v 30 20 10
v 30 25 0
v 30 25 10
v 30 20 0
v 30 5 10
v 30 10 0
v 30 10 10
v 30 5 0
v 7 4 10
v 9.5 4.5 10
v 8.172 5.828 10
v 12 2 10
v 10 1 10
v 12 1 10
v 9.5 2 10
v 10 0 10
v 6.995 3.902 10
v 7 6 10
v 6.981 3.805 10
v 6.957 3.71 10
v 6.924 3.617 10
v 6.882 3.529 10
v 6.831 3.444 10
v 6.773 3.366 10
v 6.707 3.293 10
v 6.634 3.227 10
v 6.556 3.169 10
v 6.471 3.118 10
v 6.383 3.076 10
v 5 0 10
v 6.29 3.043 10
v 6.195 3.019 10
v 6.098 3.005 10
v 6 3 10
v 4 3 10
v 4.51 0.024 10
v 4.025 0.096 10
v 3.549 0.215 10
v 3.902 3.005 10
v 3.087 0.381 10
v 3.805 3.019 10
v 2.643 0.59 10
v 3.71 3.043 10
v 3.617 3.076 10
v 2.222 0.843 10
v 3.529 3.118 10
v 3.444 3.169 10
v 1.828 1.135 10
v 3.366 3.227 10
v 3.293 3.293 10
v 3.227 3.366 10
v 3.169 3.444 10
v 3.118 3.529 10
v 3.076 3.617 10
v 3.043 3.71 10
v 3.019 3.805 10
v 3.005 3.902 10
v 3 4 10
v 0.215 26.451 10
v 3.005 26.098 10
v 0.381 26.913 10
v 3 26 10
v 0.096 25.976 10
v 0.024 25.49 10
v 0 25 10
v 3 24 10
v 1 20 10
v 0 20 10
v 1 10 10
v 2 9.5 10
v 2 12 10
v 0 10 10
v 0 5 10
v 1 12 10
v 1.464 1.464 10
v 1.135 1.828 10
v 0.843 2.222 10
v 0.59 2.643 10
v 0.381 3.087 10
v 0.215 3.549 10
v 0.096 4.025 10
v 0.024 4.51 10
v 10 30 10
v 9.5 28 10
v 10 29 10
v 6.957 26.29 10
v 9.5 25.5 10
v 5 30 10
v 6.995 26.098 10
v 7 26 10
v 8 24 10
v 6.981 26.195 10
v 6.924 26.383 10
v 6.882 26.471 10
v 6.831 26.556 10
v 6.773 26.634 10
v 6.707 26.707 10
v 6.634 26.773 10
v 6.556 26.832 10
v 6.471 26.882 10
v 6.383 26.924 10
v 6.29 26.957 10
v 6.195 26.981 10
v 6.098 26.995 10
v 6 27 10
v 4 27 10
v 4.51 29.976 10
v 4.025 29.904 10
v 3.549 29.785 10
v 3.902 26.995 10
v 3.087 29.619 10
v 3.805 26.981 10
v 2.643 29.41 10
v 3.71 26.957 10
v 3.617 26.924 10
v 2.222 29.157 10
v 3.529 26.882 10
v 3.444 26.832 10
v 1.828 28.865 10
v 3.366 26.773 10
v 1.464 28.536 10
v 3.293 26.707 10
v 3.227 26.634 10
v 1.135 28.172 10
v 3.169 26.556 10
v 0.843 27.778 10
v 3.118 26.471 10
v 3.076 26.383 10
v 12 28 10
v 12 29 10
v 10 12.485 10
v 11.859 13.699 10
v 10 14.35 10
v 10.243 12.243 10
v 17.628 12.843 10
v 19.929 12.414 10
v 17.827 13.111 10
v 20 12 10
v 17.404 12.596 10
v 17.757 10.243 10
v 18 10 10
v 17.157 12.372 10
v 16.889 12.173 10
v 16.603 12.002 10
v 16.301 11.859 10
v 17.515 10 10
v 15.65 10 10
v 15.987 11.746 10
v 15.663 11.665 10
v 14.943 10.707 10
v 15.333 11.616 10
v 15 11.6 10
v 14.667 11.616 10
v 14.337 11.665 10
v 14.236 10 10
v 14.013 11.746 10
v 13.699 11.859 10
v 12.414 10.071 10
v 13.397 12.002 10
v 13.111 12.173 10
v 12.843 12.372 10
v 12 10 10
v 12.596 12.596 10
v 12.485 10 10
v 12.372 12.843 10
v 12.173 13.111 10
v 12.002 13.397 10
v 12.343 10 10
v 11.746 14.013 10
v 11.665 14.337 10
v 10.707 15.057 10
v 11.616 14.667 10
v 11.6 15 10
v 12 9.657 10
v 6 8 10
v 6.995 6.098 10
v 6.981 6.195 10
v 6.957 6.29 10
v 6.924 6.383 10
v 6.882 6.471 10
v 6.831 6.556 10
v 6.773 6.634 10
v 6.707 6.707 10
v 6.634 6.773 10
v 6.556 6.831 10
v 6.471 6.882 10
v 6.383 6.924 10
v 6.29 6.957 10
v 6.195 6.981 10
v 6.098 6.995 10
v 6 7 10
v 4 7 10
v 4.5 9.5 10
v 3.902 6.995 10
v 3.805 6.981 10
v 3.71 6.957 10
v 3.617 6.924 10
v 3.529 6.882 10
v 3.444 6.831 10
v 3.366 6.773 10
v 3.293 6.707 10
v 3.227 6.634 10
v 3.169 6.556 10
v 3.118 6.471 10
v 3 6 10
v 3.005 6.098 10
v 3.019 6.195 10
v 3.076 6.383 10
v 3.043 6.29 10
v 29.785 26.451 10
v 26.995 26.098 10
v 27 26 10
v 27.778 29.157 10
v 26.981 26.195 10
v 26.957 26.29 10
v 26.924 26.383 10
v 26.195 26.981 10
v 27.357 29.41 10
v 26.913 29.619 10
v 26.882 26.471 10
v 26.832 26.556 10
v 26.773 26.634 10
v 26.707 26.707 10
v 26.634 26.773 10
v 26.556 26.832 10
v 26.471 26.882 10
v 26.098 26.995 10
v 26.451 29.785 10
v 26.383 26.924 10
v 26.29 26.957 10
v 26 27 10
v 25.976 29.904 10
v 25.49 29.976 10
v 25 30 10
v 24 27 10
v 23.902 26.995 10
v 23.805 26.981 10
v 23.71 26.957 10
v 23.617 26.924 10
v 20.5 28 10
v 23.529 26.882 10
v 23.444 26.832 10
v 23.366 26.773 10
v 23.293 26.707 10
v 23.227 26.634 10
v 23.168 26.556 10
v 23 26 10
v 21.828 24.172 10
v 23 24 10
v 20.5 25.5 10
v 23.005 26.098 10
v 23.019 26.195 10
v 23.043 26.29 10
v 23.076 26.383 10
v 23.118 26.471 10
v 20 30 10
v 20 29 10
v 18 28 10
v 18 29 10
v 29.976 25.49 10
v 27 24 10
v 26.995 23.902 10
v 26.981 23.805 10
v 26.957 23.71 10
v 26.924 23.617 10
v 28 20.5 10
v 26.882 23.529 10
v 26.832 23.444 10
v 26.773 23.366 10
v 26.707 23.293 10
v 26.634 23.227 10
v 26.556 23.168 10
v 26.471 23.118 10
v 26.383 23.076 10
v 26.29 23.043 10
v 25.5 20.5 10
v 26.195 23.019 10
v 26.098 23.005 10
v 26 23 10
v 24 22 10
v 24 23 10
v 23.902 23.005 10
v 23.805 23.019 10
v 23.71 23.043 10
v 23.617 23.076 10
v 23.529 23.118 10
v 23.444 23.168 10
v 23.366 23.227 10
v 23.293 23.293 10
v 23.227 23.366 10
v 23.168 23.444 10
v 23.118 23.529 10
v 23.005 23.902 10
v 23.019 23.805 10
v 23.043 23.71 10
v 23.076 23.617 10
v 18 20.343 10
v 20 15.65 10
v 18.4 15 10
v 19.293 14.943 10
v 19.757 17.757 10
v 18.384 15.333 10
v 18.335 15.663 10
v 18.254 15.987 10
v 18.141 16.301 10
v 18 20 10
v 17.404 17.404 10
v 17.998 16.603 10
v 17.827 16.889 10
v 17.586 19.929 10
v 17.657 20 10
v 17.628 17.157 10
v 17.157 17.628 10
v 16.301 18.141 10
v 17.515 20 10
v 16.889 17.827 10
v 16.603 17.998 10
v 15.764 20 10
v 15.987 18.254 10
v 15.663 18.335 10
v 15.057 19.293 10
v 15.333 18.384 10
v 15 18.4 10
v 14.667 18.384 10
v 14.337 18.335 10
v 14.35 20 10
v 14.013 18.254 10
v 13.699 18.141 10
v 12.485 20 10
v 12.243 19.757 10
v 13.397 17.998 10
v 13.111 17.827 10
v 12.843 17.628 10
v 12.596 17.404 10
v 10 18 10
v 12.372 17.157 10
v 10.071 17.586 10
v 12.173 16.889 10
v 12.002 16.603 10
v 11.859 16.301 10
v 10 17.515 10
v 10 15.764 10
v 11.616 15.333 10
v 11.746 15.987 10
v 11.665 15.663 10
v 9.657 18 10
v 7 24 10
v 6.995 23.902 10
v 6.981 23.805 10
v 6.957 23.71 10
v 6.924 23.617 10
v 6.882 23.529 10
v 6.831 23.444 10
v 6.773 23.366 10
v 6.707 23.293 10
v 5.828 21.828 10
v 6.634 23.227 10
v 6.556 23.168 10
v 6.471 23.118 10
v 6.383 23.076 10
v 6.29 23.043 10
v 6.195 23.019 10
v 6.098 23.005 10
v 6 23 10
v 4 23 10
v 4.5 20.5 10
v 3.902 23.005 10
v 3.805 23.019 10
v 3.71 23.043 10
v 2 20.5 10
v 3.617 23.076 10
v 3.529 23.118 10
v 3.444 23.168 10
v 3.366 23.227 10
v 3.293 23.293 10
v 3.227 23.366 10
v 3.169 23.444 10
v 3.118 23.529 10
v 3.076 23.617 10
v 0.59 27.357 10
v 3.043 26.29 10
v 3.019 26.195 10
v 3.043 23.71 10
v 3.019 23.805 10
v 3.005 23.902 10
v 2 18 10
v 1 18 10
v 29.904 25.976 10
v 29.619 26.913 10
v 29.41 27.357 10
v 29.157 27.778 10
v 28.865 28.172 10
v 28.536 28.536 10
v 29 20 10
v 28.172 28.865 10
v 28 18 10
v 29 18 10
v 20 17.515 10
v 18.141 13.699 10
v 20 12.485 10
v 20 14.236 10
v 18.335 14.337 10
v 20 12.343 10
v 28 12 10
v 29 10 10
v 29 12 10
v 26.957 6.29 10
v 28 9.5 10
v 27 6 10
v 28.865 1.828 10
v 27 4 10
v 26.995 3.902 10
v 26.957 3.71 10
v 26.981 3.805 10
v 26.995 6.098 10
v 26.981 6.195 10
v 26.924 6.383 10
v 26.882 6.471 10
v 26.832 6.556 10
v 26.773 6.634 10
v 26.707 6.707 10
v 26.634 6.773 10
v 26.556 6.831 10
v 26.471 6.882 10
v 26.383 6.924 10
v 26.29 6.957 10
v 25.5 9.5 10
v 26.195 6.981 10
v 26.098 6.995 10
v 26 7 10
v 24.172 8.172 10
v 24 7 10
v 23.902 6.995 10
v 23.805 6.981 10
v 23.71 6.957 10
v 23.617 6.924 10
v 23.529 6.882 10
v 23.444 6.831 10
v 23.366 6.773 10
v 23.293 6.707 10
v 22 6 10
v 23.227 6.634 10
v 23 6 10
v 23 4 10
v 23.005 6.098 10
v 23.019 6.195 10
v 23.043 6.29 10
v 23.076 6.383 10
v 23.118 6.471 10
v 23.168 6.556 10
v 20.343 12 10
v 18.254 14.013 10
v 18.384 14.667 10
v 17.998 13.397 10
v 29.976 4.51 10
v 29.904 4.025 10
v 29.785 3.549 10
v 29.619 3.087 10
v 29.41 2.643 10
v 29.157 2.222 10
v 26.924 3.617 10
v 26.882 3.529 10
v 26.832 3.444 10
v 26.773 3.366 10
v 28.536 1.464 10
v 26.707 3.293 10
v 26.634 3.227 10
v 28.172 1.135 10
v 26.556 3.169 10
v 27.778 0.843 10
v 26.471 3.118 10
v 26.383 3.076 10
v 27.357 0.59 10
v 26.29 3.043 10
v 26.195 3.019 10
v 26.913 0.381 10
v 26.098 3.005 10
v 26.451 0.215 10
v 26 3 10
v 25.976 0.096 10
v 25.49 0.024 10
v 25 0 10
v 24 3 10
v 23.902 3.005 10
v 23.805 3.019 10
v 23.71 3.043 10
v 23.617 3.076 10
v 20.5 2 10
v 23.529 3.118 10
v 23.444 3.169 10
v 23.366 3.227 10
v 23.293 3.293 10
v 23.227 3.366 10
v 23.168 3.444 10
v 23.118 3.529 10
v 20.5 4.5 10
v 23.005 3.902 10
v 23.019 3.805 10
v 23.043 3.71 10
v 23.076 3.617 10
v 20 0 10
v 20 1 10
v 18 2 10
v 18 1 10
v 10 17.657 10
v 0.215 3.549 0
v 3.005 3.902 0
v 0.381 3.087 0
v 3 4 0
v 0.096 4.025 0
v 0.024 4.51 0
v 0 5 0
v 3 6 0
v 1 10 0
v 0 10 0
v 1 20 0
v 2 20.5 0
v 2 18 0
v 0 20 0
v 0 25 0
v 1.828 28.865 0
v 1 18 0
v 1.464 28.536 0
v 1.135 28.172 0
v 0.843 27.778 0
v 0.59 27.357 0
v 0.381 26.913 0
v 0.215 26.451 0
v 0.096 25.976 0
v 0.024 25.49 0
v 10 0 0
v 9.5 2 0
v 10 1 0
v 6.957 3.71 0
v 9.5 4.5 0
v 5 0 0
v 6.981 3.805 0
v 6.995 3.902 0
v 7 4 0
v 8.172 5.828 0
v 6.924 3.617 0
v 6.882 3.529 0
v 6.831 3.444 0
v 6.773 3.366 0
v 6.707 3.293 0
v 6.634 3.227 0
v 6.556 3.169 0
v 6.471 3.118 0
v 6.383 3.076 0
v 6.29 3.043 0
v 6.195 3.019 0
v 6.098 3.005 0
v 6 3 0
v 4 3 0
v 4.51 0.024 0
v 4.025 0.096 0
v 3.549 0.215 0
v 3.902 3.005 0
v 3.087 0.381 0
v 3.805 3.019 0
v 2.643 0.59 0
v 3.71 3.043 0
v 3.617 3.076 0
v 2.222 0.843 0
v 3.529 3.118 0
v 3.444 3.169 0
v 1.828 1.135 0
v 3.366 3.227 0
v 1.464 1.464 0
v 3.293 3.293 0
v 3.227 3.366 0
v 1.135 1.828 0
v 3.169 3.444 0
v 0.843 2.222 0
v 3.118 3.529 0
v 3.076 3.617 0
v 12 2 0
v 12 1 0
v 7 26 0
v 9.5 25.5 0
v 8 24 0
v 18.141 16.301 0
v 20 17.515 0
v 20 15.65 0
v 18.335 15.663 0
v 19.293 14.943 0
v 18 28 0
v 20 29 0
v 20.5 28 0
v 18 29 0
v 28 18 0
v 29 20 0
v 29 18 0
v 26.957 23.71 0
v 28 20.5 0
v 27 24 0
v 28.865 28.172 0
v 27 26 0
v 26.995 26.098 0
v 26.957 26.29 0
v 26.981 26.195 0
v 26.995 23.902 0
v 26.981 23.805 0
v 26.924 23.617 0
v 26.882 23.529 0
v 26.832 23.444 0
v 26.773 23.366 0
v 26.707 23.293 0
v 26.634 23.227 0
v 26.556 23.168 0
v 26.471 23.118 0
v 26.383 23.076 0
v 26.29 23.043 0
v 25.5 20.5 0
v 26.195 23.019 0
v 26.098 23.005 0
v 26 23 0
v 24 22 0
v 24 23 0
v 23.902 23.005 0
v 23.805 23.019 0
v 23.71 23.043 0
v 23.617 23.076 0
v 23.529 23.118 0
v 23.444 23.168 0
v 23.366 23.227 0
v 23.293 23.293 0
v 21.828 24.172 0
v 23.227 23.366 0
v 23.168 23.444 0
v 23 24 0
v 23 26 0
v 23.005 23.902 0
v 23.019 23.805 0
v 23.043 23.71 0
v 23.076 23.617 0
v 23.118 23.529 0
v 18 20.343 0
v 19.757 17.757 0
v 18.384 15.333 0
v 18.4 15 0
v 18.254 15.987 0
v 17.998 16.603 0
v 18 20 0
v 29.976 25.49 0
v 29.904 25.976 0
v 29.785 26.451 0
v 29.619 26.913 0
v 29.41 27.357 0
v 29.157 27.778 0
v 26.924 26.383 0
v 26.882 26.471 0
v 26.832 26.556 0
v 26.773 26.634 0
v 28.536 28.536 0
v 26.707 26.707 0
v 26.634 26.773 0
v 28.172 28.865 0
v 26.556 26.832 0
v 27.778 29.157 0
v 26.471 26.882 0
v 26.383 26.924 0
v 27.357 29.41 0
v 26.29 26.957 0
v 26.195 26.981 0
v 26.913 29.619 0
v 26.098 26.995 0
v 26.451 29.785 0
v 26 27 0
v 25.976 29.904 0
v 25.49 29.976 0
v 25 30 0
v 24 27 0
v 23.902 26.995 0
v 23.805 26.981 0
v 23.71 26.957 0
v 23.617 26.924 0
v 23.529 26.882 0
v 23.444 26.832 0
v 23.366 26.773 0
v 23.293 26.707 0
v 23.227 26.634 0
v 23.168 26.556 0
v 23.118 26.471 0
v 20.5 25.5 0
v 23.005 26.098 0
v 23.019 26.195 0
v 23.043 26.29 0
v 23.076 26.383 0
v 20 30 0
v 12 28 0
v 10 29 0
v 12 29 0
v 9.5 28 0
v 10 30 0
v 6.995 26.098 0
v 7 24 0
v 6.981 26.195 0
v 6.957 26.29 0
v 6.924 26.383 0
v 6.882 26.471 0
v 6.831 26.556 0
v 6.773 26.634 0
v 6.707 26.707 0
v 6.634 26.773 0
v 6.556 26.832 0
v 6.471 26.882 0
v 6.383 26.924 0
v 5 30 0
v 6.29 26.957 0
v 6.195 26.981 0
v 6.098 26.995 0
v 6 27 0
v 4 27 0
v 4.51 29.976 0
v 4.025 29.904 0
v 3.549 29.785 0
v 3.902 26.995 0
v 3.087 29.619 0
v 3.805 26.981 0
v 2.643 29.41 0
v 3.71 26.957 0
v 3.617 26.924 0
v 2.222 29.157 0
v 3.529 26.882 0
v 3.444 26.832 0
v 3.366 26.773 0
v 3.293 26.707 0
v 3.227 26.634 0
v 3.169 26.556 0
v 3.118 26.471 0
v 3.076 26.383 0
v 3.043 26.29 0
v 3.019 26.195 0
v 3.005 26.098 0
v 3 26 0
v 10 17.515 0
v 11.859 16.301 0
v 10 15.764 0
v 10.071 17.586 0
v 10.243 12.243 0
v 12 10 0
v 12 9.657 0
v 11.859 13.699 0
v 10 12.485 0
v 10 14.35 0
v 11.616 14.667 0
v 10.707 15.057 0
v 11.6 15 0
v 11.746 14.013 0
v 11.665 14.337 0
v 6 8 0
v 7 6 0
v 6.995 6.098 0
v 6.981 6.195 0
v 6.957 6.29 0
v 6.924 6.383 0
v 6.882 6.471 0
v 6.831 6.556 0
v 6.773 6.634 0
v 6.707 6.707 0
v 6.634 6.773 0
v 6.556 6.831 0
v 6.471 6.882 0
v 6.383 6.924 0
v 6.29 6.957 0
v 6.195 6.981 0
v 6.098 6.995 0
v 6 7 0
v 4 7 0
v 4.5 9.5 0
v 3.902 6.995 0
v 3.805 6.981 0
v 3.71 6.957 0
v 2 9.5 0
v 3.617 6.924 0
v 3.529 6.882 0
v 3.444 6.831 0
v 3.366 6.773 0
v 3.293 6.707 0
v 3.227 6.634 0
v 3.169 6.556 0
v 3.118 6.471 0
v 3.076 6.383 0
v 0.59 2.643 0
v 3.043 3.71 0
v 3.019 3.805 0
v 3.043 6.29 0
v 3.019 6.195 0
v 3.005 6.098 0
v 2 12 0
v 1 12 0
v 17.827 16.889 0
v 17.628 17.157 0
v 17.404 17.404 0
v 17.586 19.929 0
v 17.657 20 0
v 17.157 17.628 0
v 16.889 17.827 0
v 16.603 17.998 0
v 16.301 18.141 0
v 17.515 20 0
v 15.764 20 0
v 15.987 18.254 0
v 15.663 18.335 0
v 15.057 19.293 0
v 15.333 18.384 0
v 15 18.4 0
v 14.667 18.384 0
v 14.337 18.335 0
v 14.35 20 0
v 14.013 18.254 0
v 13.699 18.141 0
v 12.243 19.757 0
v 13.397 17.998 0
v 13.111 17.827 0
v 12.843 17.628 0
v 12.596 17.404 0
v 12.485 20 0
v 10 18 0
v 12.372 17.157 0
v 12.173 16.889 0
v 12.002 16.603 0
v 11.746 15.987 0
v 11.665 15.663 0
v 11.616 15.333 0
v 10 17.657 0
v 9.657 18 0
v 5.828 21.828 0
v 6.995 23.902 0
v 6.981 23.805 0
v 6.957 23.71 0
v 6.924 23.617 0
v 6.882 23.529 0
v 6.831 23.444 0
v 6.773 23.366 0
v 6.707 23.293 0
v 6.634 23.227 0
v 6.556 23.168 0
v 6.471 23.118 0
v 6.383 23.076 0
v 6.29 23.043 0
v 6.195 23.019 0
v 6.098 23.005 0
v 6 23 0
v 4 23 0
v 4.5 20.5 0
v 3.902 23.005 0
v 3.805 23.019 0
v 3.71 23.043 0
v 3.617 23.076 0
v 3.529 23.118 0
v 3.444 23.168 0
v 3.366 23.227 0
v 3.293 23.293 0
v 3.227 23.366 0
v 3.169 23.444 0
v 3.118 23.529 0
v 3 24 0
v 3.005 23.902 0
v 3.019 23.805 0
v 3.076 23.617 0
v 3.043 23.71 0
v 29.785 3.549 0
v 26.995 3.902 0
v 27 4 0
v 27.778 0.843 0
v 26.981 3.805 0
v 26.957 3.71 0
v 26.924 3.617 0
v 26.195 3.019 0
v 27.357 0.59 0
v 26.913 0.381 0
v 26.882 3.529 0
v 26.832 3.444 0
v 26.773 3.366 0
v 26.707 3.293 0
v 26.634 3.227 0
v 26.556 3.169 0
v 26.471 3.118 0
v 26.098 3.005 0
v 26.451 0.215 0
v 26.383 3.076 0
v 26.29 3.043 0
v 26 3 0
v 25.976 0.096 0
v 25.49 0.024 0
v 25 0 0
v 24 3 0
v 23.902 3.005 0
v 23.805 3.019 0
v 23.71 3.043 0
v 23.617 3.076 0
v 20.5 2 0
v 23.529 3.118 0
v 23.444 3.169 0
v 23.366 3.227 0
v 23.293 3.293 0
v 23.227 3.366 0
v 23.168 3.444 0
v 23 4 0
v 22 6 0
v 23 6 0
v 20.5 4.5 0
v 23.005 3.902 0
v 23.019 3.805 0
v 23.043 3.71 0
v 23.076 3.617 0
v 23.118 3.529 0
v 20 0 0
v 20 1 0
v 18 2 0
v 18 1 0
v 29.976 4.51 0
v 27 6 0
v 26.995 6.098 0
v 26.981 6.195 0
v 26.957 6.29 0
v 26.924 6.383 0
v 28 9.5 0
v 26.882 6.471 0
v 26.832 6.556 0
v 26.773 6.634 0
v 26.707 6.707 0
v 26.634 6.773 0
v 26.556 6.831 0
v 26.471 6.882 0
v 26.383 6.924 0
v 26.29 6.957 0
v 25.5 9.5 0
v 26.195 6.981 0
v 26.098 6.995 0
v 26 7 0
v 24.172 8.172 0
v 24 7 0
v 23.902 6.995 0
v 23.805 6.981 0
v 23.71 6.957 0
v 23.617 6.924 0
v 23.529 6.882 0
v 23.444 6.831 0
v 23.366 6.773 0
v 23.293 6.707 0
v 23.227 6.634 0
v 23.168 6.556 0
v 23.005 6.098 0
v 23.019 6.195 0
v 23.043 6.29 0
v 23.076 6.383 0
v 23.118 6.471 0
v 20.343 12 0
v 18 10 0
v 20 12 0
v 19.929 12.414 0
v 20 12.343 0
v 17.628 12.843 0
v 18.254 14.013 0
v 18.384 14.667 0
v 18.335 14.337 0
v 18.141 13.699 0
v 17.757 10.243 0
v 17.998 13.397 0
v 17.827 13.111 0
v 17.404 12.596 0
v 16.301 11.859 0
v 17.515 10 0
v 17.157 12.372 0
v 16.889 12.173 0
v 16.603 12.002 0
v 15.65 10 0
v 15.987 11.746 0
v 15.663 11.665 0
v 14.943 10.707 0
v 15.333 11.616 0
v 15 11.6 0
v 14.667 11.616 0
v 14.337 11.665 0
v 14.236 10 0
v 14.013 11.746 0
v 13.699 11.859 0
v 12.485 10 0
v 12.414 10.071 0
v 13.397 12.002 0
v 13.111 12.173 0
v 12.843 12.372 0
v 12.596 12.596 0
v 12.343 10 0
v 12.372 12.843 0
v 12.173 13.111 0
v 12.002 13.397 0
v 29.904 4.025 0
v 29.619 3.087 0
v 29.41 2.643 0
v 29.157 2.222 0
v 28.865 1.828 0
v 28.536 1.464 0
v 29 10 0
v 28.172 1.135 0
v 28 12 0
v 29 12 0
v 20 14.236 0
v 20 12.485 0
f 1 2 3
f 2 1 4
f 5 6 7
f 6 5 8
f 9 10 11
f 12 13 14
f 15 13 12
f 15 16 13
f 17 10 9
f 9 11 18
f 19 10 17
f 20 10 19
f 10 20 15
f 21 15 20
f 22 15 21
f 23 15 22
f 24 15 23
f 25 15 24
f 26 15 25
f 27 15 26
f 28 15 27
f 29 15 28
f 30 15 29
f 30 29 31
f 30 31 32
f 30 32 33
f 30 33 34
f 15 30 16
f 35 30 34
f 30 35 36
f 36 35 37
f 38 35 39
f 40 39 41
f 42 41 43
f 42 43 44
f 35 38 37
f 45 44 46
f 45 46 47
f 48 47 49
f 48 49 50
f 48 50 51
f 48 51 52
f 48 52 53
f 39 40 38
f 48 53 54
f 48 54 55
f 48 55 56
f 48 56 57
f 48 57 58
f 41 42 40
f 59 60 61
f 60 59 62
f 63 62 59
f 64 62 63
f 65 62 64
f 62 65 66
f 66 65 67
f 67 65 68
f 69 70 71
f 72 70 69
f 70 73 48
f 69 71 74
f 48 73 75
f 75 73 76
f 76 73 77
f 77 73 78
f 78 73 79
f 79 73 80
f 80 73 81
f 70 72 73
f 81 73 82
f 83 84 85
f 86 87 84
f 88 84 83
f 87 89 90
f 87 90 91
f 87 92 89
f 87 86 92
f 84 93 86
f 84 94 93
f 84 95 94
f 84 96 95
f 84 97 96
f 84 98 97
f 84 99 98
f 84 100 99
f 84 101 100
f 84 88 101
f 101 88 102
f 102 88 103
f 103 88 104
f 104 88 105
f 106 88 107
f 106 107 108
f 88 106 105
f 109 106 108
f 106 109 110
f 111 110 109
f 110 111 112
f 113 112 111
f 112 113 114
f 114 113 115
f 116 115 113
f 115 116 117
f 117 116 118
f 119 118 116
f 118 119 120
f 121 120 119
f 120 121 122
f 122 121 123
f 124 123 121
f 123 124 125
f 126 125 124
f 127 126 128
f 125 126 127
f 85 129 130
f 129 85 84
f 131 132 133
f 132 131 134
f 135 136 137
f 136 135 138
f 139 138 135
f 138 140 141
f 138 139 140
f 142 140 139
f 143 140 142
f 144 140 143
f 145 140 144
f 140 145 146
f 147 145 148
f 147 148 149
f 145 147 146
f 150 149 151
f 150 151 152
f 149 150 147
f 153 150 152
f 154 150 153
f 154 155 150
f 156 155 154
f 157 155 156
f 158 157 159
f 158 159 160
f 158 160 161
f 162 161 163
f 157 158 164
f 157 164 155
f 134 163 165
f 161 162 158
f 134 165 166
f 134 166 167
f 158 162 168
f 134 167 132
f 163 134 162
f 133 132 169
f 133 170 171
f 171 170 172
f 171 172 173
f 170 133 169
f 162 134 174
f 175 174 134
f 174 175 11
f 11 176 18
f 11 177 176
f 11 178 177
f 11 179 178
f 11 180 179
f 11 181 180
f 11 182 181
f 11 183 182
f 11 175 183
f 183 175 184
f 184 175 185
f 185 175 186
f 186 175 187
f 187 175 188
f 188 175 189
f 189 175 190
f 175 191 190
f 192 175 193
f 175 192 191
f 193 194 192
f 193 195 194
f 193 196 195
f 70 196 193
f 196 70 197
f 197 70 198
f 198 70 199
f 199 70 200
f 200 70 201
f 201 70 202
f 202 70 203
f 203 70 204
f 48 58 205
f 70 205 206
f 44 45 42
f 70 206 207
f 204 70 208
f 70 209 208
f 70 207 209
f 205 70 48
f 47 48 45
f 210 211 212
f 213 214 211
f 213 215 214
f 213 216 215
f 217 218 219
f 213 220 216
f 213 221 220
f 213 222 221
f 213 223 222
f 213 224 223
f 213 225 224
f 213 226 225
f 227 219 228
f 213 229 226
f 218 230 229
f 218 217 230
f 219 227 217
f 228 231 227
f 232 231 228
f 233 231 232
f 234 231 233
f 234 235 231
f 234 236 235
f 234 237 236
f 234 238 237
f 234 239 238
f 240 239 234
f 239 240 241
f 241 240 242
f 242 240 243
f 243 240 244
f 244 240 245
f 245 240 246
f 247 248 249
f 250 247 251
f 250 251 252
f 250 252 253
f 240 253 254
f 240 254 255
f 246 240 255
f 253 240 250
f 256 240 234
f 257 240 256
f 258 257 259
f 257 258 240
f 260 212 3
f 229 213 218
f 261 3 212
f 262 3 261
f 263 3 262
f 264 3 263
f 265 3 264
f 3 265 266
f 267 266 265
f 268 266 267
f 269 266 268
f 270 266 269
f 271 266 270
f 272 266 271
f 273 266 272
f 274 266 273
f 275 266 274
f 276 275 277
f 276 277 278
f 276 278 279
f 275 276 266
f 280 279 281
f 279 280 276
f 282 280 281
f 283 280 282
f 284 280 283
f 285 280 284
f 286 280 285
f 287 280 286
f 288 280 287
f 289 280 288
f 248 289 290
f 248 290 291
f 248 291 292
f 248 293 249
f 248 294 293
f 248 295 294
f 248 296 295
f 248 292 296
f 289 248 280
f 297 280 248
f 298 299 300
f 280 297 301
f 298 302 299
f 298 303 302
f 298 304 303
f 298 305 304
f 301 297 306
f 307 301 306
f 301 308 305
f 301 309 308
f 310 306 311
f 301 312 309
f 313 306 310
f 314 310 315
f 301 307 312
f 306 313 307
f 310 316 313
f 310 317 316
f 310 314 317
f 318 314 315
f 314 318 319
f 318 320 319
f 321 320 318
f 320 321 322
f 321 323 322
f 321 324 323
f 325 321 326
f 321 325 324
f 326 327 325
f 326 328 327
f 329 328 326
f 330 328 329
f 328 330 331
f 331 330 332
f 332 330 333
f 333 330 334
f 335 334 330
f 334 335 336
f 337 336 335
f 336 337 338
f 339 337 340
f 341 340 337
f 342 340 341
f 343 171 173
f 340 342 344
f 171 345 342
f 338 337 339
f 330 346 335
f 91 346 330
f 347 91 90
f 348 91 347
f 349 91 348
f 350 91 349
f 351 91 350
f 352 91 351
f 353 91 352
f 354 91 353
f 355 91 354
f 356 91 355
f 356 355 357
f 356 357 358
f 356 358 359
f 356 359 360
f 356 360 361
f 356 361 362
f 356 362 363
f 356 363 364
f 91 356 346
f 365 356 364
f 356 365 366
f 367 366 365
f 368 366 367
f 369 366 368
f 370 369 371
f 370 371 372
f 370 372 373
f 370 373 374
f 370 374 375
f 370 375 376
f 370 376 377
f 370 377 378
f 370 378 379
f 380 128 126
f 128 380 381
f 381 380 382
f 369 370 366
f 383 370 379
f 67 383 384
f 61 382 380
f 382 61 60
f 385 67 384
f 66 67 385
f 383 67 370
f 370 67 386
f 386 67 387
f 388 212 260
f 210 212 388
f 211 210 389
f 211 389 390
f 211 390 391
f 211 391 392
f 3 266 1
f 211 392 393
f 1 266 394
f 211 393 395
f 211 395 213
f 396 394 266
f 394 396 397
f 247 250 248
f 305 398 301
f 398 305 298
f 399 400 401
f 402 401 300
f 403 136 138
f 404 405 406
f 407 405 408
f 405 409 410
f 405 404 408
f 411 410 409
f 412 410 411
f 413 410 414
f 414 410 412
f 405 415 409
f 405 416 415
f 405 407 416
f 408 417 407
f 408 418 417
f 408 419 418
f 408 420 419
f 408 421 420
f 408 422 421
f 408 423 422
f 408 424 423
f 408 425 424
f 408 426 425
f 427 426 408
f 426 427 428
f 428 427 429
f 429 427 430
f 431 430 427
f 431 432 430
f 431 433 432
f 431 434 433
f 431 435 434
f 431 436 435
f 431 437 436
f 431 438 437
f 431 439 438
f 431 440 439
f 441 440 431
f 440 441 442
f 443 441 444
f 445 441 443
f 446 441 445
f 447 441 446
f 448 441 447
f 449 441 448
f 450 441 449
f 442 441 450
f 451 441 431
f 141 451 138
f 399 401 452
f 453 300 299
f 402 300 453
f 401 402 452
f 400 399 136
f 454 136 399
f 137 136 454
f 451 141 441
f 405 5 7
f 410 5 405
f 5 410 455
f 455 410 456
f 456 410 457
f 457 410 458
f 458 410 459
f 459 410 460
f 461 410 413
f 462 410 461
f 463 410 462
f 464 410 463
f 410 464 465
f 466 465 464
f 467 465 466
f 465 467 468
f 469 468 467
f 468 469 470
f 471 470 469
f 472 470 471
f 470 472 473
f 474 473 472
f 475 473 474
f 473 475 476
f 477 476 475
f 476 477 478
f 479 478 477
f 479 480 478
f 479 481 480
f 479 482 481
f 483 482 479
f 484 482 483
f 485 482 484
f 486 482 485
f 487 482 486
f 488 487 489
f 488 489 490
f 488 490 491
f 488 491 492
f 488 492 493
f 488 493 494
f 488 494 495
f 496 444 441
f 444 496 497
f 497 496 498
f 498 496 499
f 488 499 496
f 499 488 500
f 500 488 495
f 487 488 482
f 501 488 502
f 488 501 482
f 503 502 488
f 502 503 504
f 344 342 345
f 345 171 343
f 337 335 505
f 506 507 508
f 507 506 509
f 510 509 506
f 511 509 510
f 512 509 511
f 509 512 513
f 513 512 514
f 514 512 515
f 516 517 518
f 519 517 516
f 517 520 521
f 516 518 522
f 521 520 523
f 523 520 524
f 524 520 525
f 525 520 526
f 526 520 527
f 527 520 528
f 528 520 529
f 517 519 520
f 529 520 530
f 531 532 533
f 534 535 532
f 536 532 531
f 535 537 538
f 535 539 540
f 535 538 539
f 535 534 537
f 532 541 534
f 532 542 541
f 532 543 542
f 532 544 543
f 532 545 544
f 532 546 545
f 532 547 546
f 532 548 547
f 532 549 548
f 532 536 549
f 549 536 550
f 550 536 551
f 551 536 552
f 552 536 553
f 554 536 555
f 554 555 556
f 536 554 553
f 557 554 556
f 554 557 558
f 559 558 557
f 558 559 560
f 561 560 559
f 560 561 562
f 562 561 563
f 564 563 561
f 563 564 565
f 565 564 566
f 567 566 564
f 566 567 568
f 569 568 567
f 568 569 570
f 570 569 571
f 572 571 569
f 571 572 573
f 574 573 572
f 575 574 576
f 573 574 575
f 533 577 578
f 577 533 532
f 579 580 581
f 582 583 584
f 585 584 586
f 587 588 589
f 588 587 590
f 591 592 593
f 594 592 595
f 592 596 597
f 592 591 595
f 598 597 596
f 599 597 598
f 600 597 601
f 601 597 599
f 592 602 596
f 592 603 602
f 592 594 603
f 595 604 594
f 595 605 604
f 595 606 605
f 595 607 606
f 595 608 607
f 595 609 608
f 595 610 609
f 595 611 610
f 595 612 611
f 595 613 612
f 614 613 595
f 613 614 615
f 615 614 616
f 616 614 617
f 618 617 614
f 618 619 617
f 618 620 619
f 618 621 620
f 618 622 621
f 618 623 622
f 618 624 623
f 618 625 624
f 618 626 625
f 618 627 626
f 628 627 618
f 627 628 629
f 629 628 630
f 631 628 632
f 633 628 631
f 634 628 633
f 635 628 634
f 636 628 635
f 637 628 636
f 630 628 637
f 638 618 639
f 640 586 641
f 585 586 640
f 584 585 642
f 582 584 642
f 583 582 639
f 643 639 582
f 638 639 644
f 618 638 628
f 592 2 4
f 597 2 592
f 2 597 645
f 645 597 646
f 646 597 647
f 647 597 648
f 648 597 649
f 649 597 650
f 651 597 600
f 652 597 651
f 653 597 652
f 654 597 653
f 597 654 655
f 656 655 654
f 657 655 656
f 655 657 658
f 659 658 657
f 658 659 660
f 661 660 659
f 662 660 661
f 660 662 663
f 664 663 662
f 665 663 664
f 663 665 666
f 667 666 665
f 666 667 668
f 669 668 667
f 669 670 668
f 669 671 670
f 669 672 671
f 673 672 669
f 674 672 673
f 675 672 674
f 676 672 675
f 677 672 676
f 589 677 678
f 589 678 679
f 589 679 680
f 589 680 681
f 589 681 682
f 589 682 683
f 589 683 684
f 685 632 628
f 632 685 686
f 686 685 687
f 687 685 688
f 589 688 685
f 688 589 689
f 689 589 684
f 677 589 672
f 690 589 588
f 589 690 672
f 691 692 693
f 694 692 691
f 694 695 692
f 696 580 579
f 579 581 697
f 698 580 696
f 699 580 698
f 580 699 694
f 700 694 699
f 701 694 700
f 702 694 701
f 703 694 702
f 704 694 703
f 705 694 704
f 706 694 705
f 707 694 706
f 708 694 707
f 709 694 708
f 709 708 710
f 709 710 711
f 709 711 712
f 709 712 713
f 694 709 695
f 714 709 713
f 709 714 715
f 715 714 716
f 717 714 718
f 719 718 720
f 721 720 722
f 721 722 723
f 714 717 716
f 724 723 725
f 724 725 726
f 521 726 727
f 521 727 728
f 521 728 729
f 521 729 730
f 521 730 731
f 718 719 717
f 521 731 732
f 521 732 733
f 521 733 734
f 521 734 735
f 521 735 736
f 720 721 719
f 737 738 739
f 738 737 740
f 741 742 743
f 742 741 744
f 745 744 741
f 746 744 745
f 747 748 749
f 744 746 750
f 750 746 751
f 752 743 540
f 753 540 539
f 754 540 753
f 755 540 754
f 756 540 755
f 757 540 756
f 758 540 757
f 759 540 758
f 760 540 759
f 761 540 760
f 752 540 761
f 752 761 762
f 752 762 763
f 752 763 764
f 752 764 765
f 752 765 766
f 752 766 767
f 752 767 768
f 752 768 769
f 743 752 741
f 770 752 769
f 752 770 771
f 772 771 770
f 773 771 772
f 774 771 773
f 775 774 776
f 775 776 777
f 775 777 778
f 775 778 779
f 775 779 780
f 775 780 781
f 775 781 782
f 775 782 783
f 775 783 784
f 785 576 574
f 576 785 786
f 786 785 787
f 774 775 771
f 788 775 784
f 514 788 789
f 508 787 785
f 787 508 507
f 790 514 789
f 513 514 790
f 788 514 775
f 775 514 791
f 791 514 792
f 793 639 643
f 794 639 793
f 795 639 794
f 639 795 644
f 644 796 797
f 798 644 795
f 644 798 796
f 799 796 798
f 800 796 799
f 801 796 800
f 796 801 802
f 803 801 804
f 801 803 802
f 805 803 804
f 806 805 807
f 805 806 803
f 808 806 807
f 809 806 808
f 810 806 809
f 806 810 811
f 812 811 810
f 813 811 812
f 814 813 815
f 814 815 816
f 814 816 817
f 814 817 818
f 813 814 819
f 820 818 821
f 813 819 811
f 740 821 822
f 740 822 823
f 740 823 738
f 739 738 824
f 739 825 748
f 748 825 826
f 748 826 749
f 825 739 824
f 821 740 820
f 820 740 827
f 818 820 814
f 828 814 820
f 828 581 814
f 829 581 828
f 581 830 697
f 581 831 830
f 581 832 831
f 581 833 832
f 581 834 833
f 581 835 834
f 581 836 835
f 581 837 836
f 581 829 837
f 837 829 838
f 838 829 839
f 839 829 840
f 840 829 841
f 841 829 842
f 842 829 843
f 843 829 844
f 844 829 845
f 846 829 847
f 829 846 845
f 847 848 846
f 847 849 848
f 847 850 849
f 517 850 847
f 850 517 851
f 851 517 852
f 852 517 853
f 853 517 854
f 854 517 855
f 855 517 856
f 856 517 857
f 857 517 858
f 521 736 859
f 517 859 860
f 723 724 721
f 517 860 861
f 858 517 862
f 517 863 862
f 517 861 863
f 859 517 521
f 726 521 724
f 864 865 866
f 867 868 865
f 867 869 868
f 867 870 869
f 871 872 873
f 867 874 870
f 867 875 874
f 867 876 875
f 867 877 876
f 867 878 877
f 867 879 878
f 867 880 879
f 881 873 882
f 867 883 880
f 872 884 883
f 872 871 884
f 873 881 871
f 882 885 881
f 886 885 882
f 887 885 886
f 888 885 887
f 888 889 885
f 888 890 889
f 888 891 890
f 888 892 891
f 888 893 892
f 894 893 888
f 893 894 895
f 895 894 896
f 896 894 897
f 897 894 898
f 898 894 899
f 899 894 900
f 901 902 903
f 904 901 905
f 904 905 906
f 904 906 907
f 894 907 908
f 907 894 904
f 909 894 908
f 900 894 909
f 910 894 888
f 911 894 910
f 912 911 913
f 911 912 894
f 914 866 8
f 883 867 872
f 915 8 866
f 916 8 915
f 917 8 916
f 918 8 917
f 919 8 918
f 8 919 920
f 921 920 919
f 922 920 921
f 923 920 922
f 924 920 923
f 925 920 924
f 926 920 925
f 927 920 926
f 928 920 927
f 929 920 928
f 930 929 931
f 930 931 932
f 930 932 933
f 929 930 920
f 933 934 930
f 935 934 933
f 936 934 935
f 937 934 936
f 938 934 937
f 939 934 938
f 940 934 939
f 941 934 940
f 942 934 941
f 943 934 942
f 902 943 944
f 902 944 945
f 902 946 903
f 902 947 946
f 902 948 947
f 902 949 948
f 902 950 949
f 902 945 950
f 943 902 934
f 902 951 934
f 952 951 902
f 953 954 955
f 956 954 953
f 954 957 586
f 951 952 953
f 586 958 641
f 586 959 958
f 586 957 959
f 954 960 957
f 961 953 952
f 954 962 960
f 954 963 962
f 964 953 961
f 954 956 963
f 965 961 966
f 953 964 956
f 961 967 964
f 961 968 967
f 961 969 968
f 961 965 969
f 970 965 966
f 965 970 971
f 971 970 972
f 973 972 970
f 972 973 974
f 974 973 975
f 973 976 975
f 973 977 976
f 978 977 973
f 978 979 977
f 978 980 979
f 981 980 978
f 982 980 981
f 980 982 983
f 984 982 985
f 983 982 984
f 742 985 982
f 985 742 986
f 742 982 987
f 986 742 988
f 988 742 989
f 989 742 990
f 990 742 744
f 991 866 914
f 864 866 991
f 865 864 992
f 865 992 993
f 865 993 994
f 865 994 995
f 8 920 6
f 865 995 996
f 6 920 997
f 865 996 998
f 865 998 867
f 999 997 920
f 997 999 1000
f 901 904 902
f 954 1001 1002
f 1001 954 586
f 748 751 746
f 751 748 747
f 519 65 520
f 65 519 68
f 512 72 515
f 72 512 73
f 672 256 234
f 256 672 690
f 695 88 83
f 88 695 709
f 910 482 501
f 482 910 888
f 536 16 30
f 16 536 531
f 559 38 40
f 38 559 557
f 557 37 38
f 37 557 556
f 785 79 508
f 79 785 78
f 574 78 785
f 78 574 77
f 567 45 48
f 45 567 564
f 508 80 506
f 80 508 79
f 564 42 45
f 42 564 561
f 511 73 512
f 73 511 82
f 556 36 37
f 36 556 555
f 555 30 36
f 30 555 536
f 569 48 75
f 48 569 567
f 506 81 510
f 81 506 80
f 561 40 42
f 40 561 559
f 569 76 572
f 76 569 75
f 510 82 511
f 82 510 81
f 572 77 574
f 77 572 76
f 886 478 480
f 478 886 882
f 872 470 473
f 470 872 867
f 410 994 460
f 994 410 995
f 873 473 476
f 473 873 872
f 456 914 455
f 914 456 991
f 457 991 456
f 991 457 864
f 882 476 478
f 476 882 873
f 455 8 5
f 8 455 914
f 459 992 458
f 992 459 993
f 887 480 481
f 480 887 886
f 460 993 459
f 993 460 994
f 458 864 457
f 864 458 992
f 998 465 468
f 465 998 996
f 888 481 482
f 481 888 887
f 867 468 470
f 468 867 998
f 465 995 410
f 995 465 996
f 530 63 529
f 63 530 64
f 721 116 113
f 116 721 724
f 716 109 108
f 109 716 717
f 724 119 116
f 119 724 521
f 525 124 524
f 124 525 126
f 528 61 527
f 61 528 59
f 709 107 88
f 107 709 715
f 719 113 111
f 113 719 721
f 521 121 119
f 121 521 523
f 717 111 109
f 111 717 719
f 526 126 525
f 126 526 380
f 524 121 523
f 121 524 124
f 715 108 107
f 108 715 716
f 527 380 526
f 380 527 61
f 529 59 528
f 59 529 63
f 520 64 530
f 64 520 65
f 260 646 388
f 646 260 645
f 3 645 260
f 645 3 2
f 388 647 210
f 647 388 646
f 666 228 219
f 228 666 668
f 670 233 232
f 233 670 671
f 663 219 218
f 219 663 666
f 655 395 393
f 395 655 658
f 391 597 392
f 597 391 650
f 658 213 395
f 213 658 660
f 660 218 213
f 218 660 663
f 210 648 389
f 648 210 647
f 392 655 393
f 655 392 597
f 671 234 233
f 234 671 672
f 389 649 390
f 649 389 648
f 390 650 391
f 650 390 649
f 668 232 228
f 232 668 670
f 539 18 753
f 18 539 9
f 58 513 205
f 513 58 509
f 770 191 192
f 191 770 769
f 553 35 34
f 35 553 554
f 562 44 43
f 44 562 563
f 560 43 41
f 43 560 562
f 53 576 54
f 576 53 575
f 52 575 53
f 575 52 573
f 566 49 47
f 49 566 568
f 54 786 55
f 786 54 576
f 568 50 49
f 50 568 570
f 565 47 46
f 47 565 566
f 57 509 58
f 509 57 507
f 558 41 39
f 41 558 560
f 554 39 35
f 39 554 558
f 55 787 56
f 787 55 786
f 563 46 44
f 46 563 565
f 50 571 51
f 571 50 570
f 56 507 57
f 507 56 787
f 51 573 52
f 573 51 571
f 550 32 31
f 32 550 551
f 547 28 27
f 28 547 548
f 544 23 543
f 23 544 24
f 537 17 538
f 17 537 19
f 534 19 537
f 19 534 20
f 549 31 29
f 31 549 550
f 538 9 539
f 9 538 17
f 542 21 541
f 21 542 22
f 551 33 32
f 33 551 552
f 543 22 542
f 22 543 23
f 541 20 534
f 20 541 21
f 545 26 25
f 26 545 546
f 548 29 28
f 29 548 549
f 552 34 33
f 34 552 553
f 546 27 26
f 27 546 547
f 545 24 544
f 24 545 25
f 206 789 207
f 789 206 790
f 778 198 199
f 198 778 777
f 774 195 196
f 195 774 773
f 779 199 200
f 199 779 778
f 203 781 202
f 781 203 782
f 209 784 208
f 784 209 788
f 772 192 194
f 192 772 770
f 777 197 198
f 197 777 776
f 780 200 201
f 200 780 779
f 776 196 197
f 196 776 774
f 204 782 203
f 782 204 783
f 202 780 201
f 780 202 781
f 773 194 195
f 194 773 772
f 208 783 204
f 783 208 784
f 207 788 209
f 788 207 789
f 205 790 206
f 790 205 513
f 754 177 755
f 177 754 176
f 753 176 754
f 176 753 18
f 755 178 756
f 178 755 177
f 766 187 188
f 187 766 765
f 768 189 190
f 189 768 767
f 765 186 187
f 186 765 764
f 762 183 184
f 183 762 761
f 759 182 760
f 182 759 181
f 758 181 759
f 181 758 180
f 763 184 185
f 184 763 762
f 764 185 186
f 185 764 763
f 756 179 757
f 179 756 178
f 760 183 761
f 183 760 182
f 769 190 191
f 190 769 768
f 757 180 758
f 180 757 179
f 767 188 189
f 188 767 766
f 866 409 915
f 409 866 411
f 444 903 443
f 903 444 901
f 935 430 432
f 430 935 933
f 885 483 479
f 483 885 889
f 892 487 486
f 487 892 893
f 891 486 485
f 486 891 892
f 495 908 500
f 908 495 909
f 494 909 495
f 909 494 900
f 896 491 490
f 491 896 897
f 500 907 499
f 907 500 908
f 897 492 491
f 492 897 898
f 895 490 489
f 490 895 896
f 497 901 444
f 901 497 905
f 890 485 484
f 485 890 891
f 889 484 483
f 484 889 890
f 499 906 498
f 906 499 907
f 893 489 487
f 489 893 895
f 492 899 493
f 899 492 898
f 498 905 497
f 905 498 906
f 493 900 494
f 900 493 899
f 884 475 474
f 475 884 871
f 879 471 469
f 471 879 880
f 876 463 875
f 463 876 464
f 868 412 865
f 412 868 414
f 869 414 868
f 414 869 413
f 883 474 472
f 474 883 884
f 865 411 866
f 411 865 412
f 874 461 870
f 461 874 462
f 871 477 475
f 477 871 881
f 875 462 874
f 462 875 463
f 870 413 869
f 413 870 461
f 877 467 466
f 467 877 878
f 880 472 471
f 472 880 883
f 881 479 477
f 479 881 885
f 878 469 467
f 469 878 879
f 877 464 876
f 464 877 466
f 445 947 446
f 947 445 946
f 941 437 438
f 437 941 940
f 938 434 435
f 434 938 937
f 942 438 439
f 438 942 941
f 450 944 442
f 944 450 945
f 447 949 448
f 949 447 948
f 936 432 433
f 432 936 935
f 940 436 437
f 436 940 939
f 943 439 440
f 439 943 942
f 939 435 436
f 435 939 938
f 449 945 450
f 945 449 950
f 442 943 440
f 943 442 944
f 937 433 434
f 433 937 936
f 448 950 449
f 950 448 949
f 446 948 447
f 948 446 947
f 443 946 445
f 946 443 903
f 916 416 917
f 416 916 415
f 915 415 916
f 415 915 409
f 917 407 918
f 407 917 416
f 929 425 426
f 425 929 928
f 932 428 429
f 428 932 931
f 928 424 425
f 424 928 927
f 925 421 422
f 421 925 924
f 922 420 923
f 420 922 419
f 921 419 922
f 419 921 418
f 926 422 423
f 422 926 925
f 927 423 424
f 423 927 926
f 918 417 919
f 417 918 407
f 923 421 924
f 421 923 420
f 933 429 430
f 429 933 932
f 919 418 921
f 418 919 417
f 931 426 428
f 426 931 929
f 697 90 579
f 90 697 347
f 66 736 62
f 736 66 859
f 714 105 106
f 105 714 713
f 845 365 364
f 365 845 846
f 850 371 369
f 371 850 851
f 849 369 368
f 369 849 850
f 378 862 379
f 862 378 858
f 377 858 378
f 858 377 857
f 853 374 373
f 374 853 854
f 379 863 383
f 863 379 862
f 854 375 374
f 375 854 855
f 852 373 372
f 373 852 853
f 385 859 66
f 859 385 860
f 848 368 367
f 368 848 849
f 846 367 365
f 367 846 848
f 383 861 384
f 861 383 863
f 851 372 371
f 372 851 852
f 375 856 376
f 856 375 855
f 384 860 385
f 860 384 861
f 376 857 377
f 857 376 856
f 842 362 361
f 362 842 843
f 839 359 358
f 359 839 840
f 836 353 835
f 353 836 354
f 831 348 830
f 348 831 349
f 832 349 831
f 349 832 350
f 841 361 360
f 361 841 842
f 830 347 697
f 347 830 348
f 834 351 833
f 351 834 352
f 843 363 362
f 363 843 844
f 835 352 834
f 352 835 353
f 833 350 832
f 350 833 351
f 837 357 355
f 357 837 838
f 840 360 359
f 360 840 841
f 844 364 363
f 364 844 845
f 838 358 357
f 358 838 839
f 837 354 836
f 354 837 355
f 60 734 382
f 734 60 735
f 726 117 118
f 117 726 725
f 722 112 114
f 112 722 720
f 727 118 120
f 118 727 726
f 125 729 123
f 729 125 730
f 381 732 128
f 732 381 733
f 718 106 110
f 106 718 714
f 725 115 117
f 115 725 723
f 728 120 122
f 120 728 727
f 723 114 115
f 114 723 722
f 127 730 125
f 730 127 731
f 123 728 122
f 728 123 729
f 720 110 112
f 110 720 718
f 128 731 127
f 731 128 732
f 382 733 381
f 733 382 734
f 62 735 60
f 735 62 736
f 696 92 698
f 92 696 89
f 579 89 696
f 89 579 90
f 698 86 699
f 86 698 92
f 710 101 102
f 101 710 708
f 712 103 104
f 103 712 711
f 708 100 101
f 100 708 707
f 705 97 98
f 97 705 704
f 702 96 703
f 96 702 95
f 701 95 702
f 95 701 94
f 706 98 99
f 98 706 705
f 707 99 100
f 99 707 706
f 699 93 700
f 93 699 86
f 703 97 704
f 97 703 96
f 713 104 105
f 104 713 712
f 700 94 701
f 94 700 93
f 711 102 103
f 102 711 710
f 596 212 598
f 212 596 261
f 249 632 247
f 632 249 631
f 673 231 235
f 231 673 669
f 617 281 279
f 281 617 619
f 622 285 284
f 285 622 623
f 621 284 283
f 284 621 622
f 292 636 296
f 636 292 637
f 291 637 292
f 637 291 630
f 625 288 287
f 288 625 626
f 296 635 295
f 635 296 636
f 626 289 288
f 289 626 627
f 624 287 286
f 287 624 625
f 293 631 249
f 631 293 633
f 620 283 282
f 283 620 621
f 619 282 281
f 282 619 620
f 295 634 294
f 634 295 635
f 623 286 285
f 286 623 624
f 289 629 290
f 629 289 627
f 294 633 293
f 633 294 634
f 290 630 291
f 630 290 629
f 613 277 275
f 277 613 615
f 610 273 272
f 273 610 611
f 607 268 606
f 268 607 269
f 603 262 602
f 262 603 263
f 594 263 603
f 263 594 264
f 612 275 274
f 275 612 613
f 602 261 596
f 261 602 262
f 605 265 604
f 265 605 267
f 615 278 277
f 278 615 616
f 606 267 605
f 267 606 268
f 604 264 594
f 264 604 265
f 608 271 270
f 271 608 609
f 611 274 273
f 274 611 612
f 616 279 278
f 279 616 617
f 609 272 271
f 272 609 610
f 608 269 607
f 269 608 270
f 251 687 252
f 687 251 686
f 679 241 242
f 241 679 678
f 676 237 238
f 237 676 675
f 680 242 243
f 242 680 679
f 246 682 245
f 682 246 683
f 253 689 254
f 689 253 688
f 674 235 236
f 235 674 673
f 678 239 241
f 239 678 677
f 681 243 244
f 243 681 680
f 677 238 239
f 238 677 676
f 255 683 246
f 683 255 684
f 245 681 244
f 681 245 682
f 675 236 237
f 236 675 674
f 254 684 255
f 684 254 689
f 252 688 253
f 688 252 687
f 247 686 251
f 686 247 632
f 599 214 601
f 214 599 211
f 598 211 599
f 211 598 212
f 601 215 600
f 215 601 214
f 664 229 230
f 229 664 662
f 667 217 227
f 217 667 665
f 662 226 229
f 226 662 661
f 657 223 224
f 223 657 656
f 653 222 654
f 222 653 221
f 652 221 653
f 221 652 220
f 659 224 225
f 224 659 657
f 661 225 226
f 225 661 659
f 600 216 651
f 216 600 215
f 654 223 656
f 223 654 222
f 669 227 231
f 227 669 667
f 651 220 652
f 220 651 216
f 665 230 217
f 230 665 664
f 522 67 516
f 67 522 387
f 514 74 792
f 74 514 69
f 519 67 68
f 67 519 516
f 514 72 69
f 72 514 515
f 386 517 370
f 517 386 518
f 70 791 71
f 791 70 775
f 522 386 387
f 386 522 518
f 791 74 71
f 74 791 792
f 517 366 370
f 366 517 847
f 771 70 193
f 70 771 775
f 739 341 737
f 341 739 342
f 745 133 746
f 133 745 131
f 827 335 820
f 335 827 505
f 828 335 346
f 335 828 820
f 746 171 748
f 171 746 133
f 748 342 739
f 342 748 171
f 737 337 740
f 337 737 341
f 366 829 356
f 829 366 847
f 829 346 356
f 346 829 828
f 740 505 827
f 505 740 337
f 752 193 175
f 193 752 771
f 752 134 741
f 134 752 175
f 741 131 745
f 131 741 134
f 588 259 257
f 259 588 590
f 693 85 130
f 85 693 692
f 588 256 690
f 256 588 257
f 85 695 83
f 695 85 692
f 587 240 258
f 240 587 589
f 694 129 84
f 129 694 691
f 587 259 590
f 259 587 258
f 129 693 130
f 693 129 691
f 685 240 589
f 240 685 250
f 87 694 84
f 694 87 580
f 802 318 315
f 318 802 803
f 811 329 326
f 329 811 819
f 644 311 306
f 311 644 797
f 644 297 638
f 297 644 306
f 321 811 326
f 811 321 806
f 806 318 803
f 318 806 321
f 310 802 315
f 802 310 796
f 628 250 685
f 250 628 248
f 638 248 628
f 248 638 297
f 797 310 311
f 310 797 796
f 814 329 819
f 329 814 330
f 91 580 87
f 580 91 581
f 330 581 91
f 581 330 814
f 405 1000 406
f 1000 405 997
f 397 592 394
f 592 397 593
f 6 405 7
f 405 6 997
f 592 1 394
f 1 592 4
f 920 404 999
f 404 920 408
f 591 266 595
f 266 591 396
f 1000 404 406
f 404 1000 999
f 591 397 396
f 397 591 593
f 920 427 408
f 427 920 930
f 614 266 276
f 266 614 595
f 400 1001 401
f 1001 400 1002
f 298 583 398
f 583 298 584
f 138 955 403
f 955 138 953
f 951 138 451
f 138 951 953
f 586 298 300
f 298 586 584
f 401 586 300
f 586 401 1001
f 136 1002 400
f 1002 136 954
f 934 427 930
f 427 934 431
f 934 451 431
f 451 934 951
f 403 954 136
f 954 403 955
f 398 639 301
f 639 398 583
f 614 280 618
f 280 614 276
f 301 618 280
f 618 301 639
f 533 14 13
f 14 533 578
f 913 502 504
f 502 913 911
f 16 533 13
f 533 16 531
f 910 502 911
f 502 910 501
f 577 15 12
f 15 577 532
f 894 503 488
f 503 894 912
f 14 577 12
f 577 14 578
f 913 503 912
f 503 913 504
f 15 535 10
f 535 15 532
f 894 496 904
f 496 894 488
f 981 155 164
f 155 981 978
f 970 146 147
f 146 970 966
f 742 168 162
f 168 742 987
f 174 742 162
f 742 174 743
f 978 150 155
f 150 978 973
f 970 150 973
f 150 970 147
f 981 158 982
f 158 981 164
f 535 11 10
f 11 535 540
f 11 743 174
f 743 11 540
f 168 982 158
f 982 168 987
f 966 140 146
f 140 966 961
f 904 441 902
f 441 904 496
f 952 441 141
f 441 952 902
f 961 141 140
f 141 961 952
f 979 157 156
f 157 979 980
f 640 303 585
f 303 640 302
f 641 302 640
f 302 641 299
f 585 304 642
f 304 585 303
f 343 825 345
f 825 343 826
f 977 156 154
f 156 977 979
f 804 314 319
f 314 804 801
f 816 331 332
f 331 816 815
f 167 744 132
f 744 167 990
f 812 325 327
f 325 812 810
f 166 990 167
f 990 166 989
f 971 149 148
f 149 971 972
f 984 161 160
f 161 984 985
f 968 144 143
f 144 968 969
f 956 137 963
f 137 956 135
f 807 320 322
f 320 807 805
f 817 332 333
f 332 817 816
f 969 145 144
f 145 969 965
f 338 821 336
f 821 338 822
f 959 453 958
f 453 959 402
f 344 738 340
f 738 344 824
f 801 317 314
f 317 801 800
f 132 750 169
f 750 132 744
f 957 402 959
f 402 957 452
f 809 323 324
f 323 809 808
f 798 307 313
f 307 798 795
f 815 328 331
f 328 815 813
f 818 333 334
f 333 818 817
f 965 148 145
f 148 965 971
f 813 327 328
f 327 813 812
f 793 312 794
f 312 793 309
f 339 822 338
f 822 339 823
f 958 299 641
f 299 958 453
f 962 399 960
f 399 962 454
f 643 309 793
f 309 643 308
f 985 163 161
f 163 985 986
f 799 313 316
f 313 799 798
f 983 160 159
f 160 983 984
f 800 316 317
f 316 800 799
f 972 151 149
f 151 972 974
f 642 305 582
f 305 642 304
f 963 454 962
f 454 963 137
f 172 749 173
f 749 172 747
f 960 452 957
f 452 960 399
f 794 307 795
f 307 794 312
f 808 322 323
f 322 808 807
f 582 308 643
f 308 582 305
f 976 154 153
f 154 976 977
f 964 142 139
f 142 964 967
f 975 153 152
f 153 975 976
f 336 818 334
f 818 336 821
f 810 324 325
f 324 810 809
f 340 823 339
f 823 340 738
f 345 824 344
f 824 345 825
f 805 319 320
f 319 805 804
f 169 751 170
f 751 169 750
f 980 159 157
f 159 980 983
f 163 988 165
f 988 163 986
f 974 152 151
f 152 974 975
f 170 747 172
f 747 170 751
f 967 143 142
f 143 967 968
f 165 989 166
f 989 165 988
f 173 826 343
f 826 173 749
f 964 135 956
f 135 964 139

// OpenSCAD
$fn = 64;


size = 30;

h = 10;

r = 5;

holeD = 6.8;
holeR = holeD / 2.0 ;

module smoothSquare(size,r,h){
    
    difference(){
        translate([0,0,0]) cube([size,size,h]);
    
        translate([0,0,0]) cube([r,r,h]);
        translate([size - r,0,0]) cube([r,r,h]);
        translate([0,size - r,0]) cube([r,r,h]);
        translate([size - r,size - r,0]) cube([r,r,h]);
        
    }
    
    translate([r,r,0]) cylinder(h,r,r);
    translate([size - r,r,0]) cylinder(h,r,r);
    translate([r, size - r,0]) cylinder(h,r,r);
    translate([size - r ,size - r ,0]) cylinder(h,r,r);
   
      
}


module cutOutTheSquares(){
    
      translate([3,3,0]) {
        smoothSquare(4,1,h);
    }
  
    translate([size -  ( 2 + r ) ,3,0]) {
        smoothSquare(4,1,h);
    }
    
     translate([3, ( size - 2 ) - r ,0]) {
        smoothSquare(4,1,h);
    }
    
     translate([ ( size - 2 ) - r, ( size - 2 ) - r , 0]) {
        smoothSquare(4,1,h);
    }
    
}

module cutOutTheArrow(x,y){
    
    translate([x,y,0]) cube([1,10,h]);
    translate([x + 1 , y + 2,0]) cube([1,6,h]);
    translate([x + 2, y - 2 ,0]) cube([4,14,h]);
    translate([x + 6, y + 2 ,0]) cube([4,6,h]);
    
    
    translate([x + 10,y + 4.35,0]) rotate([0,0,45]){
            cube([1,1,h]);  
           }
          
    translate([x + 3 ,y + 9 ,0]) rotate([0,0,-45]){
            cube([6,4,h]);  
           }
    
    translate([x + 6,y - 2 ,0]) rotate([0,0,45]){
            cube([6,4,h]);  
           } 
    
    
}


module cutOutTheArrowTwo(x,y){
    
    translate([x,y,0]) cube([1,10,h]);
    translate([x + 1 , y + 2,0]) cube([1,6,h]);
    
    //translate([x + 2, y - 2 ,0]) #cube([4,14,h]);
    
    translate([x + 2, y - 0.5 ,0]) cube([4.75,11,h]);
    
    
    translate([x + 6, y + 2 ,0]) cube([4,6,h]);
    
    
    translate([x + 10,y + 4.35,0]) rotate([0,0,45]){
            cube([1,1,h]);  
           }
          
    translate([x + 3 ,y + 9 ,0]) rotate([0,0,-45]){
            cube([6,4,h]);  
           }
    
    translate([x + 6,y - 2 ,0]) rotate([0,0,45]){
            cube([6,4,h]);  
           } 
    
    
}


/* START OF DESIGN */

difference(){

    smoothSquare(size,r,h);
    
    translate([size / 2.0 , size / 2.0 ,0]) cylinder(h,holeR,holeR);
    
    cutOutTheSquares();
    
    cutOutTheArrowTwo(0,10);
    
    rotate([0,0,-90]){
        cutOutTheArrowTwo(-30,10);
    }
    
    rotate([0,0,180]){
        cutOutTheArrowTwo(-30,-20);
    }
   
    
    rotate([0,0,90]){
        cutOutTheArrowTwo(0,-20);
    }
}
